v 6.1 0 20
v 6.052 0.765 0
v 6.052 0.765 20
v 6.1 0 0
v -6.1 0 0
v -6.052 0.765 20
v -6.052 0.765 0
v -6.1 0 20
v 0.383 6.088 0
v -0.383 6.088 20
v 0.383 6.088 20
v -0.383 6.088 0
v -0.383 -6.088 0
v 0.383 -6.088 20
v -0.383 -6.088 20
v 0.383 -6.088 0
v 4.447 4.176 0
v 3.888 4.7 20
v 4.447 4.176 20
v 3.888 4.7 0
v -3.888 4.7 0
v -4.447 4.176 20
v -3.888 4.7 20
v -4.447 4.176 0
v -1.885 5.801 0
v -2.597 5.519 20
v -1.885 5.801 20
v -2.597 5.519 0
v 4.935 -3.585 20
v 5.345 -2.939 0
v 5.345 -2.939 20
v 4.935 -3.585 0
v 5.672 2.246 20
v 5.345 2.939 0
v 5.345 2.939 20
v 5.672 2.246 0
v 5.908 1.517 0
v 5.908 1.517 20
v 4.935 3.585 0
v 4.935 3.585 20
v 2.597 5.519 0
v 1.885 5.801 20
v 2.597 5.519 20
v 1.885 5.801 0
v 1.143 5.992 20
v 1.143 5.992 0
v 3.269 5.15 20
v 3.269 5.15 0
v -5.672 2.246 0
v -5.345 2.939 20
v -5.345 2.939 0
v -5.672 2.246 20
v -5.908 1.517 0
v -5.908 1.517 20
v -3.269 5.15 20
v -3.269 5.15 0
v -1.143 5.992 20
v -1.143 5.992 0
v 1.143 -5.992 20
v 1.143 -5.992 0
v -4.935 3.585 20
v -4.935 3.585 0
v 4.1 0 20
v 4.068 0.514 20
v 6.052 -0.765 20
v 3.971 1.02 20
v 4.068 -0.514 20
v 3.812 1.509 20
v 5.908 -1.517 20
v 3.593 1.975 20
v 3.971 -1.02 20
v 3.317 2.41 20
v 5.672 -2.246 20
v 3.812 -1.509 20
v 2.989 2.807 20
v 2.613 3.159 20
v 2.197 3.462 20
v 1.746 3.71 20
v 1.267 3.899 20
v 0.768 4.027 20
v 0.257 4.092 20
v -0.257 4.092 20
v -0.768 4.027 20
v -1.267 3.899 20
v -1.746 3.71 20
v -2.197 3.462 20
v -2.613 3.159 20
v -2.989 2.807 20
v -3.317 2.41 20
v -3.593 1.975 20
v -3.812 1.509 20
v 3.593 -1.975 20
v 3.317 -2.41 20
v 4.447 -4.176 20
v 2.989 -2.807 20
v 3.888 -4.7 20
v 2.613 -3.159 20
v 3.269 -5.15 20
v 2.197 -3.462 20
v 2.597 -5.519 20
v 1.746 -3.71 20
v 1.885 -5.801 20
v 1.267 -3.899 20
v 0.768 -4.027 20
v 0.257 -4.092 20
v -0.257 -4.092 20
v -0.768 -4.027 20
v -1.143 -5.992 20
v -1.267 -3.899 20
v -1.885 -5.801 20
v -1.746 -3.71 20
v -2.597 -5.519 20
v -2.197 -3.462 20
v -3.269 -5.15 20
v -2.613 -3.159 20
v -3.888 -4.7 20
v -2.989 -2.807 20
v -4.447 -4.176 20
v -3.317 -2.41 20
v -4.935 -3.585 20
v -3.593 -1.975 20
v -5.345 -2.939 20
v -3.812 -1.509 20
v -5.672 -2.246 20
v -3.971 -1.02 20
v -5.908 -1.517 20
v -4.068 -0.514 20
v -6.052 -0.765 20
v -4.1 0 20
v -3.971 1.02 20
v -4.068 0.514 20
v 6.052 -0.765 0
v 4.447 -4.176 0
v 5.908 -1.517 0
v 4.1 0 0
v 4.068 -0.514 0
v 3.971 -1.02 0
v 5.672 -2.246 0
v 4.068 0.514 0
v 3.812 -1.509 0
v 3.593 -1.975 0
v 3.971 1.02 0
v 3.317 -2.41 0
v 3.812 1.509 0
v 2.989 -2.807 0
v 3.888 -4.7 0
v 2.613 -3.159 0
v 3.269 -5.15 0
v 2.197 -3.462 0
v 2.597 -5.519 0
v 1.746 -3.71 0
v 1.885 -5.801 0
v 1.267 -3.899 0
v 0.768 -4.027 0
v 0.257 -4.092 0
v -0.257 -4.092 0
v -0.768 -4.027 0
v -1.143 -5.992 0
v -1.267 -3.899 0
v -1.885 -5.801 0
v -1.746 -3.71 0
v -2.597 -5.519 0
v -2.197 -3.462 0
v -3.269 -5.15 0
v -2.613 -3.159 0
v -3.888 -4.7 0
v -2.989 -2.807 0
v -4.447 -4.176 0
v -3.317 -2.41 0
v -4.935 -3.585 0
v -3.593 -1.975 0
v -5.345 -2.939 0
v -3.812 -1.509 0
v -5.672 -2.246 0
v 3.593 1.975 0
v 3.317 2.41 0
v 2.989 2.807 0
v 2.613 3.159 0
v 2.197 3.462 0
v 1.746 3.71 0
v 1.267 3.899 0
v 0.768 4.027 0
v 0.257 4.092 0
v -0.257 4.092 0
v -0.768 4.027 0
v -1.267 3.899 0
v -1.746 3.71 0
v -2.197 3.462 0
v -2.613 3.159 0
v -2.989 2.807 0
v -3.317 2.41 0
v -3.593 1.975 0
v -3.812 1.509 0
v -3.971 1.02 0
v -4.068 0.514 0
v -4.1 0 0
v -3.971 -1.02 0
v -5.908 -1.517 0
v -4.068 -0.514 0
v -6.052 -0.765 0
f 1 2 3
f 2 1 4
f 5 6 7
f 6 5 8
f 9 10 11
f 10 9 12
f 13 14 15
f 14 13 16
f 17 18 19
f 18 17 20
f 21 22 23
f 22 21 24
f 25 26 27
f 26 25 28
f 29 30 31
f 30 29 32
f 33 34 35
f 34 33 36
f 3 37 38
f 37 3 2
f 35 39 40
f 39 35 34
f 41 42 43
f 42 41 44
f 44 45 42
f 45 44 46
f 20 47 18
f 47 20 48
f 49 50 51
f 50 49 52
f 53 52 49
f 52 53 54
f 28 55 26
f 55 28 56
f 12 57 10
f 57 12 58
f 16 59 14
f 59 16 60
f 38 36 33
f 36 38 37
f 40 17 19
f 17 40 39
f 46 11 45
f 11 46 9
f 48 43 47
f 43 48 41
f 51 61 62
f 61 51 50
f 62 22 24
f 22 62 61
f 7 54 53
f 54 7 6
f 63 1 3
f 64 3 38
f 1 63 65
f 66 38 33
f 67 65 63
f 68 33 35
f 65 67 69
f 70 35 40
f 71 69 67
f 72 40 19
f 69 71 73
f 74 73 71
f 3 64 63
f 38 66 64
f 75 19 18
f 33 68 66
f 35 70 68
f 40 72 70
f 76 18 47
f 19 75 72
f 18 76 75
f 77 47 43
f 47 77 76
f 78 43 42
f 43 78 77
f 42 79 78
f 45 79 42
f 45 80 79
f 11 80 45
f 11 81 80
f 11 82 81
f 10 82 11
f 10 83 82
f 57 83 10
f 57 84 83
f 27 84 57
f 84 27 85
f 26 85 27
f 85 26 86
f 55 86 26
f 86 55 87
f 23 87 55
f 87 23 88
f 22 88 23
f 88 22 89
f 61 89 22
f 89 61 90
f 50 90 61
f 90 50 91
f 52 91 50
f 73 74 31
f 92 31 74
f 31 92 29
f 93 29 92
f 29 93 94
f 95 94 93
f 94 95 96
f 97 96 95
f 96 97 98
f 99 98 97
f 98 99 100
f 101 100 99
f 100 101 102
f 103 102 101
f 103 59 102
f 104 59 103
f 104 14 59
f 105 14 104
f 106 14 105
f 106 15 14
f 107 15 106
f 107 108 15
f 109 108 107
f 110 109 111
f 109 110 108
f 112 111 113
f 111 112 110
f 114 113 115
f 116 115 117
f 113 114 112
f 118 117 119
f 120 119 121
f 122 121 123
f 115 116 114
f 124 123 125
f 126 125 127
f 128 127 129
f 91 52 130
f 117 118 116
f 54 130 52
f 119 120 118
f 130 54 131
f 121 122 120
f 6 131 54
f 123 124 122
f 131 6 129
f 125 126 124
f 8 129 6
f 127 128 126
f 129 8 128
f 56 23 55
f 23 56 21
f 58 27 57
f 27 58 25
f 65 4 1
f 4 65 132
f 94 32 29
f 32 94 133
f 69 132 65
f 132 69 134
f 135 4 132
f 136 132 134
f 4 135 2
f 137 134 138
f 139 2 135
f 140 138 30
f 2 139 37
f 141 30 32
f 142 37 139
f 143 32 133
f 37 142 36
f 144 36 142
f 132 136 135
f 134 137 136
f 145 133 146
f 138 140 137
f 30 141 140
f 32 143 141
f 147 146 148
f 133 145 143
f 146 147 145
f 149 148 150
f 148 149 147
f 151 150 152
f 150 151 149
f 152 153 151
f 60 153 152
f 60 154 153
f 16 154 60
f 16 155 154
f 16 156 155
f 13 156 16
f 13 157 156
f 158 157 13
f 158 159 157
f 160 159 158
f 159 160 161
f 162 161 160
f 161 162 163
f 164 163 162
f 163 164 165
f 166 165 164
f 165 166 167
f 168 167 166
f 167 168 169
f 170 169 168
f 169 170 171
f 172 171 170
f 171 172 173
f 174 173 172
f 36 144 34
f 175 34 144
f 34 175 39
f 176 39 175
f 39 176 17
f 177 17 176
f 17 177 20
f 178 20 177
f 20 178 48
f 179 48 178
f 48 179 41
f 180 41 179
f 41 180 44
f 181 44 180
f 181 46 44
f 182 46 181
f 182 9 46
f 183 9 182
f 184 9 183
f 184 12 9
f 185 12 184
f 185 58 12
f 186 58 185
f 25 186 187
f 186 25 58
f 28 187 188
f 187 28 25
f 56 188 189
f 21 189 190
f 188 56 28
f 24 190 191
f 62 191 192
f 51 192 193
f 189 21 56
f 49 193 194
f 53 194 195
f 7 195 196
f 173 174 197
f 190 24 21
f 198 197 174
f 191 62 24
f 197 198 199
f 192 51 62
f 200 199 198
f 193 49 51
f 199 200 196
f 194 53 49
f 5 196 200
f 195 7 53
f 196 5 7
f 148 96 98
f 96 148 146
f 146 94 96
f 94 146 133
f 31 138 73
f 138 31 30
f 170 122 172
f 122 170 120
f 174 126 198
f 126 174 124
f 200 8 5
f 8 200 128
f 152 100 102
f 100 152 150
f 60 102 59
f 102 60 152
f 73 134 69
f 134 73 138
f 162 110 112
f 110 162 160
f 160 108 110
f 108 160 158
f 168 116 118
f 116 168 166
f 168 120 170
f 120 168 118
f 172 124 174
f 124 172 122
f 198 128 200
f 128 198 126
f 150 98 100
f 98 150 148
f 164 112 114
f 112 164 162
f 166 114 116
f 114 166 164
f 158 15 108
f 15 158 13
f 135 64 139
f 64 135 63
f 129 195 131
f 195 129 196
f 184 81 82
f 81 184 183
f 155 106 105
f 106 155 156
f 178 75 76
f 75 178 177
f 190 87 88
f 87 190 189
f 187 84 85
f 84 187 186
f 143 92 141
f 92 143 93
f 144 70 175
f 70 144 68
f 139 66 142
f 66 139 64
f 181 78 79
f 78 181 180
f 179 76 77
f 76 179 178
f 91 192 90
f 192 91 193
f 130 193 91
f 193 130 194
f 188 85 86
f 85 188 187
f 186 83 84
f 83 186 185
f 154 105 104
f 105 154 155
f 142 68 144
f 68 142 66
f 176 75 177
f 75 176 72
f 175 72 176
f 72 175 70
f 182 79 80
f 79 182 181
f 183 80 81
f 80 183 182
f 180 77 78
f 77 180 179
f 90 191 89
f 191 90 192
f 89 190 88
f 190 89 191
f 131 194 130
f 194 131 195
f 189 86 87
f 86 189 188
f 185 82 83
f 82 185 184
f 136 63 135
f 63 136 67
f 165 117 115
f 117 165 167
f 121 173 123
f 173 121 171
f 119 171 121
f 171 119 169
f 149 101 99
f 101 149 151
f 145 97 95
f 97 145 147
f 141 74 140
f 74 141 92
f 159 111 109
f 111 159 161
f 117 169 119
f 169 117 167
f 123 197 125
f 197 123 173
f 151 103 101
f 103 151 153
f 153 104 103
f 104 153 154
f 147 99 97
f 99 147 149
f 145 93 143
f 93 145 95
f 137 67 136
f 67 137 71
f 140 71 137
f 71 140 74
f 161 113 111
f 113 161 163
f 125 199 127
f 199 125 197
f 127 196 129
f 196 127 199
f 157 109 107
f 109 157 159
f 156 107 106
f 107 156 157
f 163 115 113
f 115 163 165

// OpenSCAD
// file: ../parameters.scad
maximum_printable_size = 150;

layer_thickness = 0.3;
global_clearance = 0.5;


//Screw diameter and nut for M10 [mm]
M10_screw_diameter = 10.4;
M10_head_height = 10;
M10_head_diameter = 16+0.5;
M10_nut_height = 10.5;
M10_nut_diameter = 25.5;
M10_nut_pocket = 22.3;

//Screw diameter for M8 [mm]
M8_screw_diameter = 8.6;
M8_head_height = 8;
M8_head_diameter = 13.5;
M8_nut_height = 7.5;
M8_square_nut_thin_height = 4.5;
M8_nut_diameter = 14.4 + 0.5;
M8_nut_pocket = 13 + 0.5;
M8_washer_diameter = 16;
M8_washer_thickness = 1.5;


//Screw diameter and nut for M6 [mm]
M6_screw_diameter=6.5;
M6_head_diameter = 10+0.5;
M6_head_height = 6;
M6_nut_height = 4.9;
M6_nut_diameter = 11.8;
M6_nut_pocket = 10.4;
M6_square_nut_height = 3;
M6_square_nut_diameter = 10;
M6_washer_thickness = 1.6;

//Screw diameter and nut for M5 [mm]
M5_screw_diameter=5.5;
M5_head_height = 5;
M5_head_diameter = 13+0.5;
M5_nut_height = 4.5;
M5_nut_diameter = 9.4;
M5_nut_pocket = 8.4;

//Screw diameter and nut for M4 [mm]
M4_screw_diameter=4.5;
M4_screw_head_height = 4;
M4_nut_height = 3.2;
M4_nut_diameter = 8.4;
M4_nut_pocket = 7.5;

//Screw diameter and nut for M3 [mm]
M3_screw_diameter = 3.2;
M3_nut_height = 2.7;
M3_nut_diameter = 6.6;
M3_nut_pocket = 5.6;
M3_screw_head_height = 3;

//Screw diameter and nut for M2,5 [mm]
M2_5_screw_diameter = 2.7;
M2_5_nut_height = 2.3;
M2_5_nut_diameter = 6;
M2_5_nut_pocket = 5.5;

// kulove lozisko

bearing_efsm_08_h = 33+1;
bearing_efsm_08_m = 22;
bearing_efsm_08_db = 18;
bearing_efsm_08_ag = 10.5;
bearing_efsm_08_n = M4_screw_diameter;
bearing_efsm_08_a1 = 5.5;
bearing_efsm_08_d = 8.25;
bearing_efsm_08_B = 8; // ball height

bearing_efsm_10_h = 38+1;
bearing_efsm_10_m = 26;
bearing_efsm_10_db = 21.9;
bearing_efsm_10_ag = 12+0.2;
bearing_efsm_10_n = M5_screw_diameter;
bearing_efsm_10_a1 = 6.5;
bearing_efsm_10_d = 10.25;


bearing_efsm_12_width = 40+1;
bearing_efsm_12_h = bearing_efsm_12_width;
bearing_efsm_12_boltd = 28/2; // polovina vzdalenosti mezi srouby
bearing_efsm_12_m = bearing_efsm_12_boltd*2;
bearing_efsm_12_db = 25;
bearing_efsm_12_ag = 13;
bearing_efsm_12_a1 = 7;
bearing_efsm_12_n = M5_screw_diameter;
bearing_efsm_12_d = 12.15;
bearing_efsm_12_B = 10; // ball height
bearing_efsm_space = 1;

bearing_efsm_17_width = 54+1;
bearing_efsm_17_h = bearing_efsm_17_width;
bearing_efsm_17_boltd = 38/2; // polovina vzdalenosti mezi srouby
bearing_efsm_17_m = bearing_efsm_17_boltd*2;
bearing_efsm_17_db = 35;
bearing_efsm_17_ag = 18;
bearing_efsm_17_n = M6_screw_diameter;
bearing_efsm_17_a1 = 10;
bearing_efsm_17_B = 17; // ball height

//limcove lozisko
bearing_EFOM_10_L=26; //celkova sirka zakladny
bearing_EFOM_10_d1=10.3;//diametr otvoru real=10 mm
bearing_EFOM_10_dB=22;//diametr vystupku pro ulozeni lozika
bearing_EFOM_10_H=52;//celková delka zakladny
bearing_EFOM_10_J=36;// hole pitch
bearing_EFOM_10_A1=6.5;//vyska pouzdra
bearing_EFOM_10_Ag=12;//celkova vyska
bearing_EFOM_10_N1=5;//sirka otvoru pro sroub
bearing_EFOM_10_N2=8;//delka otvoru pro sroub
bearing_EFOM_10_m=36;//roztec der pro sroub
bearing_EFOM_10_h=9;//vyska lozika


608_bearing_outer_diameter = 22.3;
608_bearing_inner_diameter = 16;
608_bearing_thickness = 7.1;


// 20 KG servo parameters

servo_20kg_axis_offset = 9.375; // jak je osa mimo stredu
servo_20kg_body_x = 42;
servo_20kg_body_y = 21;
servo_20kg_body_z = 40;
servo_20kg_thread_x = 49/2;
servo_20kg_thread_y = 10/2;
servo_20kg_body_below = 10; // jak hluboko je tělo serva pod drzaky na srouby
servo_20kg_below = 25.8; // jak hluboko je páka serva pod drzaky na srouby

servo_20kg_bolt_d = 2.5+0.3;
servo_20kg_nut_d = 5+0.3;


//strain gauge
strain_gauge_width = 12.7;
strain_gauge_length = 75.1;
strain_gauge_screw_distance = 10;

//ALU profile
ALU_profile_width = 30.5;
ALU_profile_holder_wall_thickness = 3;
ALU_profile_groove_width = 8;

//pillow block bearing
//https://www.igus.eu/product/372
//Part no. KSTM-08
KSTM08_screws_distance = 33;         //m
KSTM08_screws_holes_diameter = 4.5;  //d2
KSTM08_flange_thickness = 6;         //h3
KSTM08_case_width = 9;               //C1
KSTM08_case_length = 47;             //a
KSTM08_ball_width = 12;              //B
KSTM08_ball_hole_diameter = 7.85;    //d1


//ložiska pro malý rotor
bearing_outer_diameter = 10.2;    // Rozměr B1 v nákresu s přídavkem na toleranci otvoru
bearing_thickness = 4;        // Rozměr B2 v nákresu
//bearing_shaft_length = 19.5;    // Rozměr B3 v nákresu, Originalni hodnota 19.5
bearing_shaft_length = 20;    // Rozměr B3 v nákresu


//parametry víčka s telemetrickou anténou
S01_sila_materialu=1.2;
S01_vyska_horni_zavit=10;
S01_hloubka_zavitu=4;
S01_prumer_vnitrni=50;
LO_spodni_prumer=17.2;
LO_vyska_bez_krytu=15;
S01_tolerance_zavit=1.5;
R01_vyska_prekryti_statoru=10;

g3_0_cone1 = 70;
g3_0_srcew_dist = 55;



// scale parameters
base_length = 500;
mid_base_width = 500;
mid_base_height = 200;
mid_base_length = 500;
mid_base_x_offset = 50;
base_mid_base_hinge_offset = 50;
tower_height = 185;
tower_angle = atan((mid_base_width/2-ALU_profile_width-10)/tower_height);
tower_arm_length = tower_height/cos(tower_angle);
tower_drag_z_offset = 22;
electro_box_length = 225;
electro_box_width = 165;
electro_box_height = 51.5;

// calibration device parameters
calibration_arm_x_offset = 140;
calibration_arm_y_offset = 50;
// main file
include <../parameters.scad>

module 888_5012() {
    difference() {
        cylinder(d=8+0.2+4, h=20, $fn=50);
        
        translate([0, 0, -ALU_profile_holder_wall_thickness])
        cylinder(d=8+0.2, h=26, $fn=50);
    }
}

888_5012();
